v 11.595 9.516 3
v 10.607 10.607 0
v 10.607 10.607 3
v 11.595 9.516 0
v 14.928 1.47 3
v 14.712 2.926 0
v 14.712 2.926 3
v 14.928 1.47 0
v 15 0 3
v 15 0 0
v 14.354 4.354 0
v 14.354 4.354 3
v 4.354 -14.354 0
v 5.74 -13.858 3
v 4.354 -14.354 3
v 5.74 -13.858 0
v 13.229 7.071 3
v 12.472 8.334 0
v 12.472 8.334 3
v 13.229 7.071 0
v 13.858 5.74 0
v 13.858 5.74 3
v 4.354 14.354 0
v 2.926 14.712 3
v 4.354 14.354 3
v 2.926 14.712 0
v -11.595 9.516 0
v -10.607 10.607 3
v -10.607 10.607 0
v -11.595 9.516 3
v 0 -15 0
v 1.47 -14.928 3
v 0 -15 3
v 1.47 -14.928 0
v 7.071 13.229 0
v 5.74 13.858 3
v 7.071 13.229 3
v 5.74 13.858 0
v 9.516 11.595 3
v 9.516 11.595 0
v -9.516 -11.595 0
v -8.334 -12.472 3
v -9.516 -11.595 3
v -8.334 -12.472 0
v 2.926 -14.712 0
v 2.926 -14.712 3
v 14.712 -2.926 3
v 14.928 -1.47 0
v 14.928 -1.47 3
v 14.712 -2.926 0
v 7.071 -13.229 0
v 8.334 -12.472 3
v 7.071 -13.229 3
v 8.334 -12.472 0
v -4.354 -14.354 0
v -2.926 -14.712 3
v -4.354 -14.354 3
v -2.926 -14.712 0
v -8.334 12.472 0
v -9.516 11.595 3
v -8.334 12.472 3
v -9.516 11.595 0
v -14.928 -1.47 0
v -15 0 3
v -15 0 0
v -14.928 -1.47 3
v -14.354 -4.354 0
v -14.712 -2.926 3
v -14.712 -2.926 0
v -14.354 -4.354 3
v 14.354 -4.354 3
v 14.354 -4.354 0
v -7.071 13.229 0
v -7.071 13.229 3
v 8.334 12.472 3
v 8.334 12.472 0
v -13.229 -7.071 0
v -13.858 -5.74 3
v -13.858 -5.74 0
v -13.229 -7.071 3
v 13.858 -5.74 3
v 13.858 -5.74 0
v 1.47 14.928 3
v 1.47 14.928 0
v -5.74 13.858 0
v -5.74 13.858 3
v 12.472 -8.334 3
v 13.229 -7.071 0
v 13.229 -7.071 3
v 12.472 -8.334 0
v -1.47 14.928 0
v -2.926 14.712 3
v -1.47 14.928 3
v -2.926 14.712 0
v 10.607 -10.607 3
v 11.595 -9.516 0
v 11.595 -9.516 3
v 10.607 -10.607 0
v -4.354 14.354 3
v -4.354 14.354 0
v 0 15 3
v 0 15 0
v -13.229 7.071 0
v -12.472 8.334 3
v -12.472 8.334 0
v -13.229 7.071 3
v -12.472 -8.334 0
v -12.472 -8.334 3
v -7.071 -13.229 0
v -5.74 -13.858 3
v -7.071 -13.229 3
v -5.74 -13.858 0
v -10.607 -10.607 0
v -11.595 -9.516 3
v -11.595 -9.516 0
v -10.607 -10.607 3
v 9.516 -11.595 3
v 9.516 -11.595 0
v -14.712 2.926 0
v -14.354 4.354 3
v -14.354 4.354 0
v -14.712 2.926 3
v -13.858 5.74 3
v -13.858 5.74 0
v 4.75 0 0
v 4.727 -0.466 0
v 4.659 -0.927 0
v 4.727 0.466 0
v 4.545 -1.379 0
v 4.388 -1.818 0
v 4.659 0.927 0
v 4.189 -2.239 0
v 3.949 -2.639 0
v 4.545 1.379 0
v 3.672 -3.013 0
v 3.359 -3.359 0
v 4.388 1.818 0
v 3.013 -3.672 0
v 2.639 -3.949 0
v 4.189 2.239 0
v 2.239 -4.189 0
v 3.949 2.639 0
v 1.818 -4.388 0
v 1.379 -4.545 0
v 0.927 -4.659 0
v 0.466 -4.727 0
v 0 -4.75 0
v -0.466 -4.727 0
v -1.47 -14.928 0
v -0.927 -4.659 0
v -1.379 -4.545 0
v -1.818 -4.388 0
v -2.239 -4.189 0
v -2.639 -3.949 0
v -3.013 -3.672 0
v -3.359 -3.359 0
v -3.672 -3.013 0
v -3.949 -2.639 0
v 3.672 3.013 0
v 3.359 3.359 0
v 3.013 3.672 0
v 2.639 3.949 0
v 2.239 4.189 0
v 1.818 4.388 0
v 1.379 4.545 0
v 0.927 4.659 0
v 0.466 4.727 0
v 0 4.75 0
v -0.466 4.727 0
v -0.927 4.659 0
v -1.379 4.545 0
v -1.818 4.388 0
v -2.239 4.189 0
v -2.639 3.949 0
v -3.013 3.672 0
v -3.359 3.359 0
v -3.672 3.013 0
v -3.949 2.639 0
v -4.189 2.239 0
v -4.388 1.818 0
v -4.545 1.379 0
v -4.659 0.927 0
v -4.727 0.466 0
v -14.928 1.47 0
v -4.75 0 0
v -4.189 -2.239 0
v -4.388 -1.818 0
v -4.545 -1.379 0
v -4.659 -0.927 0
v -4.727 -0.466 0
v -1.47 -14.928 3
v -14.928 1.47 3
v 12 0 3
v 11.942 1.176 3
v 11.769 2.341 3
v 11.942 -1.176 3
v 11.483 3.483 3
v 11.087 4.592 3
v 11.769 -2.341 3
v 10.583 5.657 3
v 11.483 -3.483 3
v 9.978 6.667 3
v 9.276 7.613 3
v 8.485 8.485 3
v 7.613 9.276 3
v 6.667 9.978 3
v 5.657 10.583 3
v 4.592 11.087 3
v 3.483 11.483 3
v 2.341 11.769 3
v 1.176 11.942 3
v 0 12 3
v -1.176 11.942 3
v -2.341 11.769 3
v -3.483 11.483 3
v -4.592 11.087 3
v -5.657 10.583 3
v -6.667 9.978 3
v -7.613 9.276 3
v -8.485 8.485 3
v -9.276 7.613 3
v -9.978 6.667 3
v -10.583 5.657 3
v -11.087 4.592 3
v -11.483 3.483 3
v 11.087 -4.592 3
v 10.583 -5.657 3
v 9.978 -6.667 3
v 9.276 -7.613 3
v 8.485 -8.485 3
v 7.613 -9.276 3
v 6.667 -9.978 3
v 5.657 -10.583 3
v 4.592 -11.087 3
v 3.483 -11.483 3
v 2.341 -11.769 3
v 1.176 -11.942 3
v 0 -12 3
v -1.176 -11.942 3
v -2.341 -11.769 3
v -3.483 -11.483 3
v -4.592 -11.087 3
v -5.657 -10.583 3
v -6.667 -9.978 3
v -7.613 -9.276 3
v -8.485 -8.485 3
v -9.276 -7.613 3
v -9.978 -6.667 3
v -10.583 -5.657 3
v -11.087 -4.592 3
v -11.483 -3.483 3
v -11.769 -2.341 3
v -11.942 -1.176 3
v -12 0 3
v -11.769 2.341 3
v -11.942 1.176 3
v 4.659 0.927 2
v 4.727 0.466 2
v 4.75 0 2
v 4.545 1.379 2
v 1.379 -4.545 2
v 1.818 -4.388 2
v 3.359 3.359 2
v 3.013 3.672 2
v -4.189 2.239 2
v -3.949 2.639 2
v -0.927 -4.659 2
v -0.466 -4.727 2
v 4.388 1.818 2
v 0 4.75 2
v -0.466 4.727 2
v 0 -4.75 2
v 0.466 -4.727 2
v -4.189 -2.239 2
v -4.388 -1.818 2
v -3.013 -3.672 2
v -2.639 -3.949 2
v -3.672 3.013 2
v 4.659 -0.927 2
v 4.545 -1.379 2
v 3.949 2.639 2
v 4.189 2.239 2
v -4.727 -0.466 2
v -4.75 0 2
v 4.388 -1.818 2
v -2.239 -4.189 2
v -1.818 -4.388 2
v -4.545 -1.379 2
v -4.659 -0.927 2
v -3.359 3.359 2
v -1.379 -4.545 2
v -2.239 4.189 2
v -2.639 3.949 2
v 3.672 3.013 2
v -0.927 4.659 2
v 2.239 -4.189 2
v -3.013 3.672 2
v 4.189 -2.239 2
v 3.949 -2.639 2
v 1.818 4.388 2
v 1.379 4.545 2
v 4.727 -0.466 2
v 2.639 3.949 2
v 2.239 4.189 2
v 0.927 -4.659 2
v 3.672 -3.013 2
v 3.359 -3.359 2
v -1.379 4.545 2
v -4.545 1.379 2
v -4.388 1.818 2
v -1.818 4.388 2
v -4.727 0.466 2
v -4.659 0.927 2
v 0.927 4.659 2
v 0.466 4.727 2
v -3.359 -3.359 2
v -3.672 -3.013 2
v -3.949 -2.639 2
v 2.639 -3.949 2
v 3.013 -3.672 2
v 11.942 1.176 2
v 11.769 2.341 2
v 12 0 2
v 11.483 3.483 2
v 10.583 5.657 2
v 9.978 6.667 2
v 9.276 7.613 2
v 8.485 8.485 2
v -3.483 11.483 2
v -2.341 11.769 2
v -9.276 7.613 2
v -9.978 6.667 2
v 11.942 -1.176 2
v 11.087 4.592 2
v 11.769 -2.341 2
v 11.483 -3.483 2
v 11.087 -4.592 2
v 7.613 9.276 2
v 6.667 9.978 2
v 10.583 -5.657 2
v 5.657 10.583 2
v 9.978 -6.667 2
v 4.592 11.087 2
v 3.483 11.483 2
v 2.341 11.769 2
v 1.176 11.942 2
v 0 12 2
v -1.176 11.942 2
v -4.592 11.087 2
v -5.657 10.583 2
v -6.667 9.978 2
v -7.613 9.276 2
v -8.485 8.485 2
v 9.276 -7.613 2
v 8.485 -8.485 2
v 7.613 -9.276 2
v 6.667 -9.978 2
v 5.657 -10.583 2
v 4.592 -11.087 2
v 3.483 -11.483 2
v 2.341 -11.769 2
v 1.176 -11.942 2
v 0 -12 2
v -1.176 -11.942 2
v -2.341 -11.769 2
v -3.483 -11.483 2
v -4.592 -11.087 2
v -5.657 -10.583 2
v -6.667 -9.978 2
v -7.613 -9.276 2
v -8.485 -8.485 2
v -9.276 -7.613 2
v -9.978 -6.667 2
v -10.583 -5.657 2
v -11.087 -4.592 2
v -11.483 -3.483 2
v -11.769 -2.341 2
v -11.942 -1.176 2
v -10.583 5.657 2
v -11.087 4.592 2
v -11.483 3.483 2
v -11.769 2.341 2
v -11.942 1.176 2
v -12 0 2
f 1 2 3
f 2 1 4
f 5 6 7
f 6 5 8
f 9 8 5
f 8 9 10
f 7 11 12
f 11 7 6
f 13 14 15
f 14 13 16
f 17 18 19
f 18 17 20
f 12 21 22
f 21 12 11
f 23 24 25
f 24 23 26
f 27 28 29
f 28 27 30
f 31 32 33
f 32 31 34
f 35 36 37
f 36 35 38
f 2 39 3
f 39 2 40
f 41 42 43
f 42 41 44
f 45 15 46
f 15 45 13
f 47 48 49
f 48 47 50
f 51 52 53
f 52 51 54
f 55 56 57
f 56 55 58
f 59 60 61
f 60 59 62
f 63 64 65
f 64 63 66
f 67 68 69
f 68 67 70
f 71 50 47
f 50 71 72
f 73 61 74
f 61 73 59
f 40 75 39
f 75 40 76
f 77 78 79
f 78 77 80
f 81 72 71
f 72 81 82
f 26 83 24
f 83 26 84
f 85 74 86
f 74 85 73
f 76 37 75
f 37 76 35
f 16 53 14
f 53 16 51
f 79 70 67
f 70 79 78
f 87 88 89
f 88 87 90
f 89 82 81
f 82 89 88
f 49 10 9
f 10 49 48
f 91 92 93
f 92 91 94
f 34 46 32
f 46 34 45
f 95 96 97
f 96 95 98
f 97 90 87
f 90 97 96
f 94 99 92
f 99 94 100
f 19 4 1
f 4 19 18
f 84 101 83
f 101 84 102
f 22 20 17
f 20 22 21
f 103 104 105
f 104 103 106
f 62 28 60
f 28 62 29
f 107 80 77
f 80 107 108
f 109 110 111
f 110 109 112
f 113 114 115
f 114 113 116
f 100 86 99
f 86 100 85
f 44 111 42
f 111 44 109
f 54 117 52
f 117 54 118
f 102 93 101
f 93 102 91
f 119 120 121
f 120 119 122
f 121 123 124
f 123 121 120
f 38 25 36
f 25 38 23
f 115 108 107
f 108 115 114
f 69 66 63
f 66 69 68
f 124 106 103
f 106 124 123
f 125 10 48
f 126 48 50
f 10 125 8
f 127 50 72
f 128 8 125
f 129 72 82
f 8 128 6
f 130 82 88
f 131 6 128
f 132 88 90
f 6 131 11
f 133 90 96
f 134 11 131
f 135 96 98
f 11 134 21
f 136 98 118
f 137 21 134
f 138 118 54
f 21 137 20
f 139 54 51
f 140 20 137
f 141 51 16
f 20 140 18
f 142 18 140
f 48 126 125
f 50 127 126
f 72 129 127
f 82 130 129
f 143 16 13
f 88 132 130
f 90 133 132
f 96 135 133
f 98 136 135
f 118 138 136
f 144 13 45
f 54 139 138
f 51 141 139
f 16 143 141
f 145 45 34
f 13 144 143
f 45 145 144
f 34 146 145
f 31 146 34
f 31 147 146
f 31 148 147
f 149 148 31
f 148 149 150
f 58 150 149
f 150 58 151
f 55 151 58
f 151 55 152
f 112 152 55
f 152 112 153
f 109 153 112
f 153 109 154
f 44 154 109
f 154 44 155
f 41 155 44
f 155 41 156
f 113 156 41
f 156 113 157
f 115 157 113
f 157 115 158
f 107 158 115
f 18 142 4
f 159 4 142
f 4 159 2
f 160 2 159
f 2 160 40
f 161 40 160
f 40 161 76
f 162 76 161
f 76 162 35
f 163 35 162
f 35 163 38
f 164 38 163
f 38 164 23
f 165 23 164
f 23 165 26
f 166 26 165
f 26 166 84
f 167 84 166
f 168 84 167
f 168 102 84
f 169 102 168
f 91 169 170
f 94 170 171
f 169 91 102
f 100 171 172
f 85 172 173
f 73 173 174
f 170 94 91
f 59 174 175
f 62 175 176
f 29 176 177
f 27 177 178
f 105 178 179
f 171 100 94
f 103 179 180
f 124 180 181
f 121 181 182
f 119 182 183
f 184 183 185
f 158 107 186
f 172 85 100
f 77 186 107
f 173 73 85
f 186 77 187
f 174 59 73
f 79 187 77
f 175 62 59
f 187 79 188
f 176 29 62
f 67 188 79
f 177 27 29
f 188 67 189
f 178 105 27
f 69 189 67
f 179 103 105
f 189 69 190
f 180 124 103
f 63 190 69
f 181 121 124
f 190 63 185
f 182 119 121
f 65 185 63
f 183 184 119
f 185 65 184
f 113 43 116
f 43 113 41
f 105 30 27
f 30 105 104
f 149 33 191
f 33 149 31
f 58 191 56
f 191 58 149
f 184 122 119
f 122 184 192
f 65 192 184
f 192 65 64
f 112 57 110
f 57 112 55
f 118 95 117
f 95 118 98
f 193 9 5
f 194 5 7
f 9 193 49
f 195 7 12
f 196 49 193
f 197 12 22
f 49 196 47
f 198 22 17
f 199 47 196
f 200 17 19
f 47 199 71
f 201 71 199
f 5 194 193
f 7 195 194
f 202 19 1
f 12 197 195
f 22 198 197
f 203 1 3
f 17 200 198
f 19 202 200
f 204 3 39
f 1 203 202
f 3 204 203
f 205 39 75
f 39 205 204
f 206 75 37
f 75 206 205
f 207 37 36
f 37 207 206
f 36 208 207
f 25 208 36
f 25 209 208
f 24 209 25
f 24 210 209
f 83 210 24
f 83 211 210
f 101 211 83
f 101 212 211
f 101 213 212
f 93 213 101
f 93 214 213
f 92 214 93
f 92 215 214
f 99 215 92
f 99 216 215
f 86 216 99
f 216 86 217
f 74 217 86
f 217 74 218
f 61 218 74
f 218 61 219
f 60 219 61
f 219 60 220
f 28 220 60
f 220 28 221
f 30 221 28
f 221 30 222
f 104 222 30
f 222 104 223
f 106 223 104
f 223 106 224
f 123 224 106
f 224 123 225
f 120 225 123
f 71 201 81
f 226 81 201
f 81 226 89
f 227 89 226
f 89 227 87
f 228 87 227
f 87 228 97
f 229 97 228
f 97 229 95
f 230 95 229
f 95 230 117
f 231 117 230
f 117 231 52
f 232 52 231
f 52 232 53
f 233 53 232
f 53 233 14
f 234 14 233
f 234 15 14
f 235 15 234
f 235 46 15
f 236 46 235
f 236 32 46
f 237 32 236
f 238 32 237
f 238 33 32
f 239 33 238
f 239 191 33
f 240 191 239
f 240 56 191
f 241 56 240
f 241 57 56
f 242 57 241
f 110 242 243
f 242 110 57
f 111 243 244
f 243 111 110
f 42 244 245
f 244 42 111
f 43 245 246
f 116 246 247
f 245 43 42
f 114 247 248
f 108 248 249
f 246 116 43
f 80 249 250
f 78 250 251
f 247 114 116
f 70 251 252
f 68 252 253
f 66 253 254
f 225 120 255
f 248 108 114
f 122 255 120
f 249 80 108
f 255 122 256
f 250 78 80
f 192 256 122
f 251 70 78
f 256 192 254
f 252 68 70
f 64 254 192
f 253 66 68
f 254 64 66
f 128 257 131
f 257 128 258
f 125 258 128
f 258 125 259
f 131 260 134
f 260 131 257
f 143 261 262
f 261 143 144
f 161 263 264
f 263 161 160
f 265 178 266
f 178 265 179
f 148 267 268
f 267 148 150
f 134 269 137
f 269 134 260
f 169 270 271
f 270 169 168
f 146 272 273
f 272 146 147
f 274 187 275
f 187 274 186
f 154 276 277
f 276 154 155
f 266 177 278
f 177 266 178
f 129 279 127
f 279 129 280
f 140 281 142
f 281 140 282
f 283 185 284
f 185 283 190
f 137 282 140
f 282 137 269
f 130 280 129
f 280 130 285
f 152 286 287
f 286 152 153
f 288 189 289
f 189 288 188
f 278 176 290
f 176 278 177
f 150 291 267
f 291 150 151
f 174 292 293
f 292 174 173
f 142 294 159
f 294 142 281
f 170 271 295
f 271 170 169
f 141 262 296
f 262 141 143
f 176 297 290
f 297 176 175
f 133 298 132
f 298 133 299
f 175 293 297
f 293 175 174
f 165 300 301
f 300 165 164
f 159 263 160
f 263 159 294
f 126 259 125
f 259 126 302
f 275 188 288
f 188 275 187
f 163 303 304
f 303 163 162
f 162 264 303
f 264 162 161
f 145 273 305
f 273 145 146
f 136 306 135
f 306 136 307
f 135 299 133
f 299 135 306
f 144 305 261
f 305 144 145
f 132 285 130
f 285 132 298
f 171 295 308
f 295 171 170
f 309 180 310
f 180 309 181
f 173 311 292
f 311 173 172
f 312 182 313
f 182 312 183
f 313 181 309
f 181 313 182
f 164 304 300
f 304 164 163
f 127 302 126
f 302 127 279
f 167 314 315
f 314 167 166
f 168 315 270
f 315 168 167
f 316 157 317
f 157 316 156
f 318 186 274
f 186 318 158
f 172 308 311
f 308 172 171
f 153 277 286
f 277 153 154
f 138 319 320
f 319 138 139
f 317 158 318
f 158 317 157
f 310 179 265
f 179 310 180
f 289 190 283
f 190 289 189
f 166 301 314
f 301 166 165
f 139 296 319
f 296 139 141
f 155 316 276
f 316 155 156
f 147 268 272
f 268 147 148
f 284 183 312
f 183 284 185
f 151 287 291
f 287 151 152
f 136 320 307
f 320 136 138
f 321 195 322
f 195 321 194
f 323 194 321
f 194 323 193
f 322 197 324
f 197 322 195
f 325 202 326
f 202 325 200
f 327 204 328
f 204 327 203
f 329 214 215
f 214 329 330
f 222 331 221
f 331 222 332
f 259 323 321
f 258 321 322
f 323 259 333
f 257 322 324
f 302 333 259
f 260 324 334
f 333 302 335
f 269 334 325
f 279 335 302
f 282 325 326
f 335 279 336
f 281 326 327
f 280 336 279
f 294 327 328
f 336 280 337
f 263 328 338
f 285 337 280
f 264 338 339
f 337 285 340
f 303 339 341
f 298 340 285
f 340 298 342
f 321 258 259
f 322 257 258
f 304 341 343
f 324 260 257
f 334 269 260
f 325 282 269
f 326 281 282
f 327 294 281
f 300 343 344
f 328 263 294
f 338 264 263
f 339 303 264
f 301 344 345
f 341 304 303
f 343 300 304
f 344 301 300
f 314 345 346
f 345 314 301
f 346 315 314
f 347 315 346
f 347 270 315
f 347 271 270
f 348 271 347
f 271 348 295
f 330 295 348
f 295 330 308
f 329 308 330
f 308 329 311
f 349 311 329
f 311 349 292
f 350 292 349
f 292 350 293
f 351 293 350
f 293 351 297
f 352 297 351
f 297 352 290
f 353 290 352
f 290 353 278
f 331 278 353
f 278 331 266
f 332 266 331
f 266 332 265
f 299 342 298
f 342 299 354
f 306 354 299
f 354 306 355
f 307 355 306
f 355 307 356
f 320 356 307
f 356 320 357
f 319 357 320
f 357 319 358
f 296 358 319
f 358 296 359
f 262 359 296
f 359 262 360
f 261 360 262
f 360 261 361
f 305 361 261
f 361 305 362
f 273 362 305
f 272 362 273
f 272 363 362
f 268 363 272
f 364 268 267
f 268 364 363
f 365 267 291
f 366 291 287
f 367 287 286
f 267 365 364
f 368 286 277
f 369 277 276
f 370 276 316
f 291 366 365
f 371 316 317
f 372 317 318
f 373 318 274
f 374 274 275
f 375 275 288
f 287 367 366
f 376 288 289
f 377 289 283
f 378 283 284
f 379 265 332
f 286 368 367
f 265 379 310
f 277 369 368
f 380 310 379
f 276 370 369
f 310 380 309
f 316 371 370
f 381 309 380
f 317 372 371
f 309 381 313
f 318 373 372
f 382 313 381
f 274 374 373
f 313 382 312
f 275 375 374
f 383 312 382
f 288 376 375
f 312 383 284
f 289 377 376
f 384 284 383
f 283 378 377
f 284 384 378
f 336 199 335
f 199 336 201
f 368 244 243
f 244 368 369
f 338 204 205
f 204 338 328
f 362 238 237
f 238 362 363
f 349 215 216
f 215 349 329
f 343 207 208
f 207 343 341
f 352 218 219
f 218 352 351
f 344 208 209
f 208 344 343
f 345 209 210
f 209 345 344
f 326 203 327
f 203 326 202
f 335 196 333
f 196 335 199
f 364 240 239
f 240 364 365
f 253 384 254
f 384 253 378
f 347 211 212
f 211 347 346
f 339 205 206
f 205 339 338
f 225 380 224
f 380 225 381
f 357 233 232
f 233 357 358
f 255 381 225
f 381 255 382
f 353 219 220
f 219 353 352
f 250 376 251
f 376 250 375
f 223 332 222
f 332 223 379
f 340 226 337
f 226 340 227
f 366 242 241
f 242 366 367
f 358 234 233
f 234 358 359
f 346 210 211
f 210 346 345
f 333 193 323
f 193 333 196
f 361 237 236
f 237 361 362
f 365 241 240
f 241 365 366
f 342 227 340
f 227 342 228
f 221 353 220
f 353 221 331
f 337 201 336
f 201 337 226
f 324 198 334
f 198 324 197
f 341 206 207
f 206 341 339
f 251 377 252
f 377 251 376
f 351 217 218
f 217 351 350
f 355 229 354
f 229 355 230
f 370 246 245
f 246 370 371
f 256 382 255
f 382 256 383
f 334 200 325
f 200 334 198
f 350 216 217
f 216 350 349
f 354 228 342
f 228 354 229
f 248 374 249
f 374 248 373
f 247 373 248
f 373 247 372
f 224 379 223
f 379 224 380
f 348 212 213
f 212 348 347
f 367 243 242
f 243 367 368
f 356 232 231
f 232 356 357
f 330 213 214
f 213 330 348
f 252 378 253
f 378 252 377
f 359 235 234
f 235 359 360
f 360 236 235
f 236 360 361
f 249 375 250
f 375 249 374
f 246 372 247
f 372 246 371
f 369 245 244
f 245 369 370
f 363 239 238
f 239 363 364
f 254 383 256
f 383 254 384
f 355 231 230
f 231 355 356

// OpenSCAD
// file: parameters.scad
// AFPM-Desk-v1 shared parameters (mm)
// Desktop axial-flux PM learning generator — Faraday induction education only.

$fn = 64;

// --- Magnets (N42 Neo discs) ---
magnet_d = 20;
magnet_h = 3;
magnet_count = 8;
magnet_pcd = 70; // pitch circle diameter

// --- Rotor ---
rotor_od = 100;
rotor_id = 12; // shaft clearance / hub seat
rotor_thickness = 6;
magnet_pocket_clearance = 0.3;
magnet_pocket_depth = magnet_h + 0.2;

// --- Stator ---
stator_od = 110;
stator_id = 30;
stator_thickness = 8;
coil_count = 6;
coil_slot_w = 22;
coil_slot_h = 18;
coil_slot_depth = 6;
coil_pcd = 70;

// --- Shaft / bearings ---
shaft_d = 8;
bearing_od = 22; // 608 skate bearing
bearing_id = 8;
bearing_h = 7;
bearing_seat_od = bearing_od + 0.2;

// --- Base ---
base_w = 160;
base_d = 140;
base_h = 8;
post_h = 55;

// --- Crank ---
crank_arm_len = 80;
crank_arm_w = 16;
crank_arm_t = 8;
handle_d = 12;
handle_len = 40;

// --- Electronics tray ---
tray_w = 70;
tray_d = 50;
tray_h = 12;
// main file
include <parameters.scad>

module bearing_cap() {
  difference() {
    cylinder(h=3, d=30);
    translate([0,0,-0.1])
      cylinder(h=3.2, d=shaft_d + 1.5);
    // clip over post — shallow lip
    translate([0,0,2])
      cylinder(h=1.1, d=bearing_od + 2);
  }
}

bearing_cap();
